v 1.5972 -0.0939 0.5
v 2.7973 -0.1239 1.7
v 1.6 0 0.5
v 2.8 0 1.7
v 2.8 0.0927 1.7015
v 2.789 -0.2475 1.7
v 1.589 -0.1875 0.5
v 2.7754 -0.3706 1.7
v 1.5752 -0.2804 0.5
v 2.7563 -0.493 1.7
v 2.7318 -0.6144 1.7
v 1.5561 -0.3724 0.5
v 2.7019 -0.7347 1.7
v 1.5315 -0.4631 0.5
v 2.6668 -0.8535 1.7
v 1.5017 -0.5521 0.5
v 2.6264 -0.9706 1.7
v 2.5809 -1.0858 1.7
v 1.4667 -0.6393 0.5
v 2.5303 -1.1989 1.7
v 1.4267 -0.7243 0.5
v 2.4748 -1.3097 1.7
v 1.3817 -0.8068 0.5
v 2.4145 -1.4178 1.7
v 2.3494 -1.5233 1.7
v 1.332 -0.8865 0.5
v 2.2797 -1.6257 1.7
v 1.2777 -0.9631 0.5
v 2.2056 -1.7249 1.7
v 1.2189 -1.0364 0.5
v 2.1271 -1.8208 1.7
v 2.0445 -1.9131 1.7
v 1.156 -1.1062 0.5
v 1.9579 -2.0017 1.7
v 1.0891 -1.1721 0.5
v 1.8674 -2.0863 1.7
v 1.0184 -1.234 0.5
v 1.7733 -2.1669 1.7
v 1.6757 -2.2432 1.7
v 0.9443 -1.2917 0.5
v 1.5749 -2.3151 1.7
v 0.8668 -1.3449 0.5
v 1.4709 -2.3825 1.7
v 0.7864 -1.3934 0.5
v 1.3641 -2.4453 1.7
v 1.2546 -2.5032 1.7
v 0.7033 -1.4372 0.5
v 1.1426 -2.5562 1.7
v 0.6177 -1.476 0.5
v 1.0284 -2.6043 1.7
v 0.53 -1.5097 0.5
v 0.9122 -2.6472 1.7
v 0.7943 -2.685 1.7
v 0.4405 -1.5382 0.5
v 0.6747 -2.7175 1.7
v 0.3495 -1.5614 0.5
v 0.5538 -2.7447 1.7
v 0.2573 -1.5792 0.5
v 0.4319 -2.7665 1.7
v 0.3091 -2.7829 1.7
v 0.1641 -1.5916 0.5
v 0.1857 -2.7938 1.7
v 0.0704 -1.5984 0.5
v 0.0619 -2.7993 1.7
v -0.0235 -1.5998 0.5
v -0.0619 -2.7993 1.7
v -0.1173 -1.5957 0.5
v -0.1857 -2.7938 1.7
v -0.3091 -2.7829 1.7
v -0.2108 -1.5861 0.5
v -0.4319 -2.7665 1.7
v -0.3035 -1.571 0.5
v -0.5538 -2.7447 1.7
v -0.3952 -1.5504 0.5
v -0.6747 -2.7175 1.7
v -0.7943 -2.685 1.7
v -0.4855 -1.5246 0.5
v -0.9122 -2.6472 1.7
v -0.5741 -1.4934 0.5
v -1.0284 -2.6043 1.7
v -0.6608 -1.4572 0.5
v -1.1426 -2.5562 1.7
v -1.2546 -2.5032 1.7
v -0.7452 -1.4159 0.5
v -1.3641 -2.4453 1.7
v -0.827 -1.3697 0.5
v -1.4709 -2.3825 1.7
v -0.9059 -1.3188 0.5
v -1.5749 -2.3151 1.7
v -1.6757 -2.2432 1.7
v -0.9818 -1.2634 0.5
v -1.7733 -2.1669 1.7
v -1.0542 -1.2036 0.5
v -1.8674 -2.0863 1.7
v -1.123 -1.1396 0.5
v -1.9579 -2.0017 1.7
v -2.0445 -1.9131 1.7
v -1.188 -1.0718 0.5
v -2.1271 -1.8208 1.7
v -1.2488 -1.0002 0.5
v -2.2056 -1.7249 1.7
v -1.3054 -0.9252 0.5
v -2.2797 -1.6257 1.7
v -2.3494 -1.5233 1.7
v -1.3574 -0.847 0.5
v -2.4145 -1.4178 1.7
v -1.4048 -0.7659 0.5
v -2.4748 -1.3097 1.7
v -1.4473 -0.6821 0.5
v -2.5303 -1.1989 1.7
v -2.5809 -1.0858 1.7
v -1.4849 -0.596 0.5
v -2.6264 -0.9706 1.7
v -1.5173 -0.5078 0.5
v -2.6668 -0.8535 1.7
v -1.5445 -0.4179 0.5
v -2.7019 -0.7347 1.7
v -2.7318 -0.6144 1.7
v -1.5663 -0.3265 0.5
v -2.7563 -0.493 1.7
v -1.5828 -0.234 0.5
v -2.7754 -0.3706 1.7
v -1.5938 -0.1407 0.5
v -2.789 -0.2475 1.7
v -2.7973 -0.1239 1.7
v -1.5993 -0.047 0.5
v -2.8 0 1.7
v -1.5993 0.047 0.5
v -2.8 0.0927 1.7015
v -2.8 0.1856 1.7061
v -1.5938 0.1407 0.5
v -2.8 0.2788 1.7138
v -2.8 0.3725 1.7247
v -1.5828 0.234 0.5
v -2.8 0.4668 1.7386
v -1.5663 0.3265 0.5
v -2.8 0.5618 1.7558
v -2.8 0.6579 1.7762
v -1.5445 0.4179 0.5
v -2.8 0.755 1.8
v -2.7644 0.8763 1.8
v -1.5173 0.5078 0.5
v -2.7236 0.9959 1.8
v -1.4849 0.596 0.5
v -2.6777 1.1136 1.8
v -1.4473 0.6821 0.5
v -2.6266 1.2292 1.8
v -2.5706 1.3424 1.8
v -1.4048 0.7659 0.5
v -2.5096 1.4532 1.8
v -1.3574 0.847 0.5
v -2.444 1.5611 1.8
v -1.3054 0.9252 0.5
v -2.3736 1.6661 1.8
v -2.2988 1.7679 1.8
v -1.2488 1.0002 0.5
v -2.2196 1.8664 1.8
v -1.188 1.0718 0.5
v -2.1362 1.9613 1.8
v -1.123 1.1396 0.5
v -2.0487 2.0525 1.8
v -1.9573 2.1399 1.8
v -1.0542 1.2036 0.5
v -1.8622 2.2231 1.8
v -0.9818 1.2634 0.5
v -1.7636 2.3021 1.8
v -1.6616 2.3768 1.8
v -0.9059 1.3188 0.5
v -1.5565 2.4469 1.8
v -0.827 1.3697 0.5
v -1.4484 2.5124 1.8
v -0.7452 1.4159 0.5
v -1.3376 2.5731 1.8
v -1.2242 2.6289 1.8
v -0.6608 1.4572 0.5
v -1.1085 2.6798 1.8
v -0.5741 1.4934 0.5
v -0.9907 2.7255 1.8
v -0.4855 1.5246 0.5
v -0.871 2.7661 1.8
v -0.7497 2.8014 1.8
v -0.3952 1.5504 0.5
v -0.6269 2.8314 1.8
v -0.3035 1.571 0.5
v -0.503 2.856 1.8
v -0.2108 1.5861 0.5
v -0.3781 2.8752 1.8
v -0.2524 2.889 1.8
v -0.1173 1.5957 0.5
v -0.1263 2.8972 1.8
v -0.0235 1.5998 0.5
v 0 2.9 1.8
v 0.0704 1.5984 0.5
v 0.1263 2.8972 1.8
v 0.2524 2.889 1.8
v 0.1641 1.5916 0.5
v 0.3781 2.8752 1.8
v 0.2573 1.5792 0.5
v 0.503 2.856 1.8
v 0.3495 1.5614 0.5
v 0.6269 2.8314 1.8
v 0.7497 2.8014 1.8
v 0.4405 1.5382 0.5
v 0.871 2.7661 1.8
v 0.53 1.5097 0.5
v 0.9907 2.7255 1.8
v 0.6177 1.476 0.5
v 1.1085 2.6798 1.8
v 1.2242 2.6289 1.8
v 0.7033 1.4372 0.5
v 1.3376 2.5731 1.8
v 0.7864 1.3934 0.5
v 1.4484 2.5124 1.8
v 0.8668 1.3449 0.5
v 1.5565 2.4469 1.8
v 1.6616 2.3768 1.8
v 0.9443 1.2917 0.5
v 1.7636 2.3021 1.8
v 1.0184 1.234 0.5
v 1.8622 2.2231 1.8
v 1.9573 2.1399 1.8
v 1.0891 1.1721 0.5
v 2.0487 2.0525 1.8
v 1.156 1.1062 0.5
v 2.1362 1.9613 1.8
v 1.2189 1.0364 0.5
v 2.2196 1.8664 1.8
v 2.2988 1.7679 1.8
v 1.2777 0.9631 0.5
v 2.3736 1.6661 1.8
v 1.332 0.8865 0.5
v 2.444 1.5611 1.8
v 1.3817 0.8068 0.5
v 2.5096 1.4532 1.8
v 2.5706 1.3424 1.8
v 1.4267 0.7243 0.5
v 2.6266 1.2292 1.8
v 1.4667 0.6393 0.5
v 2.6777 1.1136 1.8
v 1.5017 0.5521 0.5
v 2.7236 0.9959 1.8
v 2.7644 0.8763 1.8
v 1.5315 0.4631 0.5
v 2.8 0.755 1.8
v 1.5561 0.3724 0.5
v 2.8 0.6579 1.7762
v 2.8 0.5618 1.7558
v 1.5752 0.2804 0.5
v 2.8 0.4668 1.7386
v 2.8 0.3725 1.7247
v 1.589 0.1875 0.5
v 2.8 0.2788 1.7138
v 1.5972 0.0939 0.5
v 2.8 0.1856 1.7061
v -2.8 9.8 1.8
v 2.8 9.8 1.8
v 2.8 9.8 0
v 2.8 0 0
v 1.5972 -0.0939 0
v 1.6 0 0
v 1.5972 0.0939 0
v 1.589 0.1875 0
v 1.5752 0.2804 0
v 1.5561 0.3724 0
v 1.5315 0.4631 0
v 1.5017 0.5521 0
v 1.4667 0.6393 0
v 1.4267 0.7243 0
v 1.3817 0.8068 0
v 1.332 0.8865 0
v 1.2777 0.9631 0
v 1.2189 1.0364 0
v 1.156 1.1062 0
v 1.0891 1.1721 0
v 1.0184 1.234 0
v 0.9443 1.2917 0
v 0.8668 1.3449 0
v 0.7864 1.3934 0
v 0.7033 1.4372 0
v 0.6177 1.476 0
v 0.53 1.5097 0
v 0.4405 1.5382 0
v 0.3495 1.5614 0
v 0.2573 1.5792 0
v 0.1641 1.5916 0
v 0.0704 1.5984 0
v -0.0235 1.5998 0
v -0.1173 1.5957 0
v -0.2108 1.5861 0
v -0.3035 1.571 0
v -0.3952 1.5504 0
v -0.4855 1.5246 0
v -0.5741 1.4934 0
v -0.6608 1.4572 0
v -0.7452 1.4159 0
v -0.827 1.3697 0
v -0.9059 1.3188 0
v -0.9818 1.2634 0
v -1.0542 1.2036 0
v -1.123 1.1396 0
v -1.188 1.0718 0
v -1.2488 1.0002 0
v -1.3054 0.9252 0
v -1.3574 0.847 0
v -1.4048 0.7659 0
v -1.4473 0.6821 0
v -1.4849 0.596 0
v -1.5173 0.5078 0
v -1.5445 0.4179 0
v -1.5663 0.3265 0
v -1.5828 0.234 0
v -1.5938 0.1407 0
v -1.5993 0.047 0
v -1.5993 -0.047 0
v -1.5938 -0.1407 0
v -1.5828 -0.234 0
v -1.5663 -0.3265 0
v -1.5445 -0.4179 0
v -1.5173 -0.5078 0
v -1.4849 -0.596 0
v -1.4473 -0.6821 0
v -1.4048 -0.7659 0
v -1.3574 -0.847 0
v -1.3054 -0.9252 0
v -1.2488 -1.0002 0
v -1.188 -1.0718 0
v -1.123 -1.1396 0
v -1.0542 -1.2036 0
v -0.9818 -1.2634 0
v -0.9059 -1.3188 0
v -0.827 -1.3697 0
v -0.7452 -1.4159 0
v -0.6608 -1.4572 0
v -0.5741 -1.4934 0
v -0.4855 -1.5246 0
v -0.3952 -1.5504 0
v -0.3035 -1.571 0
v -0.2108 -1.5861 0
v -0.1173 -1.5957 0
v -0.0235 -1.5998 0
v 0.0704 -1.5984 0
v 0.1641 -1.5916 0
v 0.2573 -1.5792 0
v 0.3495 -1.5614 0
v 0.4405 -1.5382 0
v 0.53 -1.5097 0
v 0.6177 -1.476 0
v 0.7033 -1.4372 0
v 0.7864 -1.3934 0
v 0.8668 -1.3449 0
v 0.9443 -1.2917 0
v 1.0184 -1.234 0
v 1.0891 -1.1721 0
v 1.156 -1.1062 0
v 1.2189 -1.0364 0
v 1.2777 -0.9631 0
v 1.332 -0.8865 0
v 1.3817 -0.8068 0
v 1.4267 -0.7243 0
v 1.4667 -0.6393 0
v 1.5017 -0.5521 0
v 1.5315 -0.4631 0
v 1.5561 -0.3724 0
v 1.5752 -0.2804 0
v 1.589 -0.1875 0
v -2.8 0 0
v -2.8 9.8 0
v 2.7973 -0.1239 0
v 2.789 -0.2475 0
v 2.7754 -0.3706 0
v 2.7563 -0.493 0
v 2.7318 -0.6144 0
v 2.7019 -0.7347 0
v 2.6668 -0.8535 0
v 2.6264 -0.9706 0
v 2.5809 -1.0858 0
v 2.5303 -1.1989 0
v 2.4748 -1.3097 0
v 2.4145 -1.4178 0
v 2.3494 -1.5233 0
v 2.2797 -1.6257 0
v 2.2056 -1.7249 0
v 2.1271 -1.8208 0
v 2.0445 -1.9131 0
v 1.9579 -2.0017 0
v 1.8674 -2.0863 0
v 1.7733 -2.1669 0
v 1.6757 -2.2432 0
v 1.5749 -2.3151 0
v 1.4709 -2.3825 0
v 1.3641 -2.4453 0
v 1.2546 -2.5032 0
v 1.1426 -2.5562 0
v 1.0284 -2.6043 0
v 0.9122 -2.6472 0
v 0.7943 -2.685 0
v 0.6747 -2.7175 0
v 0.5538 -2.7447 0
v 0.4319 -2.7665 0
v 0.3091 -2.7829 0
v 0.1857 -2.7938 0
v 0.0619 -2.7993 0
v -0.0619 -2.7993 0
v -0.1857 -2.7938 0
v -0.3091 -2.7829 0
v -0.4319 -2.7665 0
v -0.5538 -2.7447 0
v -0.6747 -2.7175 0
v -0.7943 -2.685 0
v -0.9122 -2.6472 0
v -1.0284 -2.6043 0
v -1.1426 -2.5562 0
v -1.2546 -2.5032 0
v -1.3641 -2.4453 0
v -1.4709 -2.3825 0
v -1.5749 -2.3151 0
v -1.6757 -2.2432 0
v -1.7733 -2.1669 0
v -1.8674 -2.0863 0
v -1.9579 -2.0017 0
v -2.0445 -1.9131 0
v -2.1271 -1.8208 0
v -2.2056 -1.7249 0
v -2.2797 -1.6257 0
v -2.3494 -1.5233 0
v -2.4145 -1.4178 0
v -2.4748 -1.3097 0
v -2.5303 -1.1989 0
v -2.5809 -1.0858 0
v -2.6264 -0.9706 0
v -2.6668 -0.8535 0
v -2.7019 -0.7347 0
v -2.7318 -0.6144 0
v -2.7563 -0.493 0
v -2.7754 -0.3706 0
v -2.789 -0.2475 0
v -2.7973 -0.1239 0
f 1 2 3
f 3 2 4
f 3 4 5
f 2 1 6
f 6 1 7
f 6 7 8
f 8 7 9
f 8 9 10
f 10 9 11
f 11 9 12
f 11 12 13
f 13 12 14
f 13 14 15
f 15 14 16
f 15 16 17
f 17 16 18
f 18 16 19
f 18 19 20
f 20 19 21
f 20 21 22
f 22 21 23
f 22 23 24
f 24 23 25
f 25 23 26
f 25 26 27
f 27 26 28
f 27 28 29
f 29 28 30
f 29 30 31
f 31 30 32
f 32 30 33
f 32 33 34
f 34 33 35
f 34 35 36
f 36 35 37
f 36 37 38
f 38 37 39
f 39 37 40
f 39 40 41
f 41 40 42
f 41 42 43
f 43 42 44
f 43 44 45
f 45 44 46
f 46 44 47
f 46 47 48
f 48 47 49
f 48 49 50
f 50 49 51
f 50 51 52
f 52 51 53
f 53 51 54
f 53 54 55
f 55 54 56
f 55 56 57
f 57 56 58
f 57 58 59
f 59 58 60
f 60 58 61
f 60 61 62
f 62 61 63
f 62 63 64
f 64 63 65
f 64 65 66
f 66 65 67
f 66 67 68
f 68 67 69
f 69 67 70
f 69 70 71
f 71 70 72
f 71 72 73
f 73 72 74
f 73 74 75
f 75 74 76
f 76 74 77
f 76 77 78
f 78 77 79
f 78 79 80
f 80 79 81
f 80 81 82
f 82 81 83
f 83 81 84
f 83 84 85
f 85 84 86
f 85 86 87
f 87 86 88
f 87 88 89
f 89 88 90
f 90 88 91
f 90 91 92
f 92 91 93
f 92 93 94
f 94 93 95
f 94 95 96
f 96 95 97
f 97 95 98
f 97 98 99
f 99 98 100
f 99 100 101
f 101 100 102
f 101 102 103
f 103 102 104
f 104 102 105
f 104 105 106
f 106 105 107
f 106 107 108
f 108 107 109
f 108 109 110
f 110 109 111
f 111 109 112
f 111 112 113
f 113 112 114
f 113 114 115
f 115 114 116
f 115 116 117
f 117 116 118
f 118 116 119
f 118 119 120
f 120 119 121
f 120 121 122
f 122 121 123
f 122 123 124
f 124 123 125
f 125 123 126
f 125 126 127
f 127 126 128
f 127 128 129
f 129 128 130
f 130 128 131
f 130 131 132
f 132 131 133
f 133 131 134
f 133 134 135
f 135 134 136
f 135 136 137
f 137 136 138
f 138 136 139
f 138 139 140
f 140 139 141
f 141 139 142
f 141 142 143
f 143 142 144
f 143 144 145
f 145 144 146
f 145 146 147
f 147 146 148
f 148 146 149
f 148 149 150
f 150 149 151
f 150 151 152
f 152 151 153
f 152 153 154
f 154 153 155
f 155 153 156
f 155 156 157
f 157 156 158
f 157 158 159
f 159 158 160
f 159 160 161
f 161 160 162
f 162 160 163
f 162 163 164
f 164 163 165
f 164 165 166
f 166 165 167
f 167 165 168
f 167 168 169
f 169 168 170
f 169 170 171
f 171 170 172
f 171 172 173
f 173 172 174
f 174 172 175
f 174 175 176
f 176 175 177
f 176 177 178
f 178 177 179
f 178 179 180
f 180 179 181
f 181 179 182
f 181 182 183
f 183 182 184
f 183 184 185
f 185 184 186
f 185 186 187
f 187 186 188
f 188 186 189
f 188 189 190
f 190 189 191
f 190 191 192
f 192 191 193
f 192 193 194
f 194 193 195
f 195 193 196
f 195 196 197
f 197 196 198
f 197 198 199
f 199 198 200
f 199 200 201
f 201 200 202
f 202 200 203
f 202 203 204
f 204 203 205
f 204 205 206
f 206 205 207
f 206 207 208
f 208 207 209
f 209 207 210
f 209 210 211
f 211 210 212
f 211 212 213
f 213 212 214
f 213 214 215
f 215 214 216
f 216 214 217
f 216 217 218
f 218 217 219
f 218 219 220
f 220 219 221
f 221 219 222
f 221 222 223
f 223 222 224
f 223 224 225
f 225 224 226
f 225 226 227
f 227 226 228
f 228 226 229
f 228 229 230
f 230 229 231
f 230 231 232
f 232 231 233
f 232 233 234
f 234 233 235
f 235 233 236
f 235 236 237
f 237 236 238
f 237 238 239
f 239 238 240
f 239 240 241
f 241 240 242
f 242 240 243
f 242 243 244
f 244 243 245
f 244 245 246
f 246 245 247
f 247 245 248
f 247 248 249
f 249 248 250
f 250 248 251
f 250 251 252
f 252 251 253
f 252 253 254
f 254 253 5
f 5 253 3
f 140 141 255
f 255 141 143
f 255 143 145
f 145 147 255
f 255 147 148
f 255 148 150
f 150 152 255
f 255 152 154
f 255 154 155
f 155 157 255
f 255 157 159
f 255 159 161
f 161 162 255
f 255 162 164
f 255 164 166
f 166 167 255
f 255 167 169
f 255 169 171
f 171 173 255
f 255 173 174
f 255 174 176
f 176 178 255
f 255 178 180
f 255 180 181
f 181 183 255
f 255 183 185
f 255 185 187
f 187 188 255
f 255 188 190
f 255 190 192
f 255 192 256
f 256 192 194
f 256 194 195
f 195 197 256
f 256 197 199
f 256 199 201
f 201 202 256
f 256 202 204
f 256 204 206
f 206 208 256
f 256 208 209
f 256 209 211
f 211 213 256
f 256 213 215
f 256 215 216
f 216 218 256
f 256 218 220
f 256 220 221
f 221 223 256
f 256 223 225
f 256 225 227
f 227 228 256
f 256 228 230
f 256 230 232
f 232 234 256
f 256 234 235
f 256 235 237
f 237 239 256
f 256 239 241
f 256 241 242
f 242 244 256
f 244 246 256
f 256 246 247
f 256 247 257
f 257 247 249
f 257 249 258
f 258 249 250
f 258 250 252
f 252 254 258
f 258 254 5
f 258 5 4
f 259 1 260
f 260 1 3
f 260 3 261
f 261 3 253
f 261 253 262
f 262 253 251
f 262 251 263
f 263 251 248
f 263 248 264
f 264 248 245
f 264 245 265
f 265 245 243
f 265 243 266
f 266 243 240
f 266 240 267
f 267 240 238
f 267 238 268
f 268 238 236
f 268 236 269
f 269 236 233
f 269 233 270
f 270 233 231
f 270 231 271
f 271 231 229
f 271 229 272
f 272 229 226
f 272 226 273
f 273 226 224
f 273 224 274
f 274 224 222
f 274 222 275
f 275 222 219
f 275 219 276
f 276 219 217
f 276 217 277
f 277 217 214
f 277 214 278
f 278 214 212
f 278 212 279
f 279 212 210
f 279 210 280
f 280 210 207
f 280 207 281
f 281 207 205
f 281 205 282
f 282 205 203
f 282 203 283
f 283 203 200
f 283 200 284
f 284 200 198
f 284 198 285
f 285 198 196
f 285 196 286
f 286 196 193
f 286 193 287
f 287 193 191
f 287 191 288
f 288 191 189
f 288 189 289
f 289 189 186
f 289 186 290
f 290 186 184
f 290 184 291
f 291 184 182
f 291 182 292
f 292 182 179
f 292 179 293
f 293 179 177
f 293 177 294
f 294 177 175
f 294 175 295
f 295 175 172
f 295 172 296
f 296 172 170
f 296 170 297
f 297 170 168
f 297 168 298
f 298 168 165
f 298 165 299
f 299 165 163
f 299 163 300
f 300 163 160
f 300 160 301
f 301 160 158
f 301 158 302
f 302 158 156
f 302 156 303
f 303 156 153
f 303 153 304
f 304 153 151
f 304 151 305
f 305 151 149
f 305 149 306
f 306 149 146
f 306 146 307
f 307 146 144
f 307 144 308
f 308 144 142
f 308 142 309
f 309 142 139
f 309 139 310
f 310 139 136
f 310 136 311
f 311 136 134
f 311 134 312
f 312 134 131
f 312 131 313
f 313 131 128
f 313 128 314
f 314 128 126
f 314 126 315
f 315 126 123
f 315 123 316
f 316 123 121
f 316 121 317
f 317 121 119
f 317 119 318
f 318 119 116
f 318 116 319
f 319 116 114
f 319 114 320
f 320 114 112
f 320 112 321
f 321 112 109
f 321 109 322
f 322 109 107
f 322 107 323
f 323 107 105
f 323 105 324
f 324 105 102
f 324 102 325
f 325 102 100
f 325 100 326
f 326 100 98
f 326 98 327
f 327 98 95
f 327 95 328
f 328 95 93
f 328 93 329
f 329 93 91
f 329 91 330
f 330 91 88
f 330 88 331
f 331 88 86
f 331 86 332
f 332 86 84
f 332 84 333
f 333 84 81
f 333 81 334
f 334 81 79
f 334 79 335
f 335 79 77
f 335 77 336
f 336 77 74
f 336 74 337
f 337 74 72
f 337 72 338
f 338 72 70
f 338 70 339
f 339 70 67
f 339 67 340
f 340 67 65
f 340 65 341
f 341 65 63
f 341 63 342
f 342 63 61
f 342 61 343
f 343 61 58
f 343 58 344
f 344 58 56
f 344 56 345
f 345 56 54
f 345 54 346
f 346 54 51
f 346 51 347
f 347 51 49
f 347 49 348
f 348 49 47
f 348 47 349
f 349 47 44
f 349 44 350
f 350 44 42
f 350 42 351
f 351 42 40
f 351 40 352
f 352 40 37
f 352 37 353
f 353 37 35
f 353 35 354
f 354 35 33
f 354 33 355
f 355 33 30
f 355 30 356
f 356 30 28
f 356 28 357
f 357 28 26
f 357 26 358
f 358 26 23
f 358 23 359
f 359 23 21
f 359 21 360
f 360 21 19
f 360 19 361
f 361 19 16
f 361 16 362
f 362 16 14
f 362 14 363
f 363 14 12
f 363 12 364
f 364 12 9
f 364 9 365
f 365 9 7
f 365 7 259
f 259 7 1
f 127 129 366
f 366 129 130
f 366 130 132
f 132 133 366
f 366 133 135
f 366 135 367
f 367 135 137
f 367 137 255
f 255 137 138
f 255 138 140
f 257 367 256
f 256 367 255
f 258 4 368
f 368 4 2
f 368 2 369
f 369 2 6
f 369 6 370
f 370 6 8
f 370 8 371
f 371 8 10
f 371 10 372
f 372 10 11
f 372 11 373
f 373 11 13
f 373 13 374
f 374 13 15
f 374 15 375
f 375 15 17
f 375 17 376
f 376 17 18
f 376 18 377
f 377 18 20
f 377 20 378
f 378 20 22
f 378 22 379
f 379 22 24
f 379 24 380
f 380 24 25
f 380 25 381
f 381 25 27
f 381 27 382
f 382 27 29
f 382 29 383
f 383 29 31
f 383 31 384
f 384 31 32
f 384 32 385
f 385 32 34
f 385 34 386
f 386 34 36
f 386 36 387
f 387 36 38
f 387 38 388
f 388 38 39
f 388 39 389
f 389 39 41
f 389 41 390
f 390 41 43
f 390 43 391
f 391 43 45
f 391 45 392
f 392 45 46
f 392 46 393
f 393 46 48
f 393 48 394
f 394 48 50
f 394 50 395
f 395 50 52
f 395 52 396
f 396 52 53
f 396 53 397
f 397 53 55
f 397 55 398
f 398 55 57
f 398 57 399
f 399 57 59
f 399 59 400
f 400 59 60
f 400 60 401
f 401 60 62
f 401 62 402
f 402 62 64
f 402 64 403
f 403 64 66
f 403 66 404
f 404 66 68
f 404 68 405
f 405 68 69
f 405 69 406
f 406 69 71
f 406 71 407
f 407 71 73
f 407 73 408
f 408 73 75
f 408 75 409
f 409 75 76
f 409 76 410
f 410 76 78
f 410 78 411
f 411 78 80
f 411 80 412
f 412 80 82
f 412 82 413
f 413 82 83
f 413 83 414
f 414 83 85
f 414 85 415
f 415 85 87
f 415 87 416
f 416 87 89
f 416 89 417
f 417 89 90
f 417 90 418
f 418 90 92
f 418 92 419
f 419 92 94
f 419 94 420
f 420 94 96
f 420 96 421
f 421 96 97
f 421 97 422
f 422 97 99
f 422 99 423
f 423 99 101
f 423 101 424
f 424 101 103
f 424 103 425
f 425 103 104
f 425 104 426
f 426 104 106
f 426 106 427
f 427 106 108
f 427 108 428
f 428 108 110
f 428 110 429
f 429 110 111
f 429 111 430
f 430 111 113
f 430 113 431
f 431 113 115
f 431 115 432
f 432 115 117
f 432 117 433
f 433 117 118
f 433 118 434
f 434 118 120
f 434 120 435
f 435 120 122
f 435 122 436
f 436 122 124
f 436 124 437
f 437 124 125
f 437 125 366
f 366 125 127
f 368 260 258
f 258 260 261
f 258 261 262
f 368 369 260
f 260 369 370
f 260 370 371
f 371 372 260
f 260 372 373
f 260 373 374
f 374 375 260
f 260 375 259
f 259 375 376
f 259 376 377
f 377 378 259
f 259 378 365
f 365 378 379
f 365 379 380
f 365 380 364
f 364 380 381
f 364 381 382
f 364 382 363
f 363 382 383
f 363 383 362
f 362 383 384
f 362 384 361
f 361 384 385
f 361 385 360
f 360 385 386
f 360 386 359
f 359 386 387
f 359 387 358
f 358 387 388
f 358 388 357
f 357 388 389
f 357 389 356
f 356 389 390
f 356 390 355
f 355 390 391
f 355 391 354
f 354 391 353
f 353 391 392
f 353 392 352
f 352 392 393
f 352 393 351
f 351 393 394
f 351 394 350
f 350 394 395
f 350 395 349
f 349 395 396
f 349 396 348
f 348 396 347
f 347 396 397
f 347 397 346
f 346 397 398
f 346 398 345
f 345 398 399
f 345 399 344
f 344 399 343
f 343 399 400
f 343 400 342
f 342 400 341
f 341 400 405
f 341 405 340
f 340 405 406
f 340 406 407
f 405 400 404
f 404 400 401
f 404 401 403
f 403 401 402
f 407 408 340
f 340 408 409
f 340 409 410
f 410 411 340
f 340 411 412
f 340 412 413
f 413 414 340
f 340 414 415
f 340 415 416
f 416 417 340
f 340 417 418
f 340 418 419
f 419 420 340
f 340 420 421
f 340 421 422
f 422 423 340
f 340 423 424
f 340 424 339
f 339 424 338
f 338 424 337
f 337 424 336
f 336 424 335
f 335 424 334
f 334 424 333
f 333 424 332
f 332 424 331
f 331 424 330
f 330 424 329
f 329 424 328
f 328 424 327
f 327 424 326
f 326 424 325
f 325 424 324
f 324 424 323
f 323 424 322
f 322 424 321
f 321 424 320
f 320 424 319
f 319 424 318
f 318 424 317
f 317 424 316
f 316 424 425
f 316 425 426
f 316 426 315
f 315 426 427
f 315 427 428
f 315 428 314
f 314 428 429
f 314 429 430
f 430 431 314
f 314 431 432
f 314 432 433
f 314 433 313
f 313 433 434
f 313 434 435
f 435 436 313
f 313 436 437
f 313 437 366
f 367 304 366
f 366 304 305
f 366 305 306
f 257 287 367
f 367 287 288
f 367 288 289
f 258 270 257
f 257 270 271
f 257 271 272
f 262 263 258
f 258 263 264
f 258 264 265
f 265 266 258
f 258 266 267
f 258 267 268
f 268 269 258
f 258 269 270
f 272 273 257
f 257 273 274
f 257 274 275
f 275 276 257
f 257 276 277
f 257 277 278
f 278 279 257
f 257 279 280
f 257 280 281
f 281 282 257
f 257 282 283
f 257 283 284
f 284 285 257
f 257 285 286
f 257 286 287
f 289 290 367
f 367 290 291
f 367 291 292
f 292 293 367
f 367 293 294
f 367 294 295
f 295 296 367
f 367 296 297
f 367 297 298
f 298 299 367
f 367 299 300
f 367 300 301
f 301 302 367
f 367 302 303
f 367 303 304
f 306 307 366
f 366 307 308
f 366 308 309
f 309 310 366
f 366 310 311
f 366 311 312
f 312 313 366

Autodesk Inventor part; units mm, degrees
ref_plane "YZ Plane" through (0, 0, 0) normal (1, 0, 0) x (0, 1, 0)
ref_plane "XZ Plane" through (0, 0, 0) normal (0, 1, 0) x (-1, 0, 0)
ref_plane "XY Plane" through (0, 0, 0) normal (0, 0, 1) x (1, 0, 0)
sketch "Sketch1" plane through (0, 0, 0) normal (0, 0, 1) x (1, 0, 0)
  arc A0 (-2.8, 0) -> (2.8, 0) centre (0, 0) ccw
  circle A1 centre (0, 0) radius 1.6
  line L0 (-2.8, 0) -> (-2.8, 9.8)
  line L1 (-2.8, 9.8) -> (2.8, 9.8)
  line L2 (2.8, 9.8) -> (2.8, 0)
  dimension "d0" = 3.2
  dimension "d1" = 2.8
  dimension "d2" = 9.8
extrude "Extrusion1" add sketch "Sketch1" along normal blind 1.8
chamfer "Chamfer1" distance 1.3 angle 45 1 edges at (-1.6, 0, 1.8)
